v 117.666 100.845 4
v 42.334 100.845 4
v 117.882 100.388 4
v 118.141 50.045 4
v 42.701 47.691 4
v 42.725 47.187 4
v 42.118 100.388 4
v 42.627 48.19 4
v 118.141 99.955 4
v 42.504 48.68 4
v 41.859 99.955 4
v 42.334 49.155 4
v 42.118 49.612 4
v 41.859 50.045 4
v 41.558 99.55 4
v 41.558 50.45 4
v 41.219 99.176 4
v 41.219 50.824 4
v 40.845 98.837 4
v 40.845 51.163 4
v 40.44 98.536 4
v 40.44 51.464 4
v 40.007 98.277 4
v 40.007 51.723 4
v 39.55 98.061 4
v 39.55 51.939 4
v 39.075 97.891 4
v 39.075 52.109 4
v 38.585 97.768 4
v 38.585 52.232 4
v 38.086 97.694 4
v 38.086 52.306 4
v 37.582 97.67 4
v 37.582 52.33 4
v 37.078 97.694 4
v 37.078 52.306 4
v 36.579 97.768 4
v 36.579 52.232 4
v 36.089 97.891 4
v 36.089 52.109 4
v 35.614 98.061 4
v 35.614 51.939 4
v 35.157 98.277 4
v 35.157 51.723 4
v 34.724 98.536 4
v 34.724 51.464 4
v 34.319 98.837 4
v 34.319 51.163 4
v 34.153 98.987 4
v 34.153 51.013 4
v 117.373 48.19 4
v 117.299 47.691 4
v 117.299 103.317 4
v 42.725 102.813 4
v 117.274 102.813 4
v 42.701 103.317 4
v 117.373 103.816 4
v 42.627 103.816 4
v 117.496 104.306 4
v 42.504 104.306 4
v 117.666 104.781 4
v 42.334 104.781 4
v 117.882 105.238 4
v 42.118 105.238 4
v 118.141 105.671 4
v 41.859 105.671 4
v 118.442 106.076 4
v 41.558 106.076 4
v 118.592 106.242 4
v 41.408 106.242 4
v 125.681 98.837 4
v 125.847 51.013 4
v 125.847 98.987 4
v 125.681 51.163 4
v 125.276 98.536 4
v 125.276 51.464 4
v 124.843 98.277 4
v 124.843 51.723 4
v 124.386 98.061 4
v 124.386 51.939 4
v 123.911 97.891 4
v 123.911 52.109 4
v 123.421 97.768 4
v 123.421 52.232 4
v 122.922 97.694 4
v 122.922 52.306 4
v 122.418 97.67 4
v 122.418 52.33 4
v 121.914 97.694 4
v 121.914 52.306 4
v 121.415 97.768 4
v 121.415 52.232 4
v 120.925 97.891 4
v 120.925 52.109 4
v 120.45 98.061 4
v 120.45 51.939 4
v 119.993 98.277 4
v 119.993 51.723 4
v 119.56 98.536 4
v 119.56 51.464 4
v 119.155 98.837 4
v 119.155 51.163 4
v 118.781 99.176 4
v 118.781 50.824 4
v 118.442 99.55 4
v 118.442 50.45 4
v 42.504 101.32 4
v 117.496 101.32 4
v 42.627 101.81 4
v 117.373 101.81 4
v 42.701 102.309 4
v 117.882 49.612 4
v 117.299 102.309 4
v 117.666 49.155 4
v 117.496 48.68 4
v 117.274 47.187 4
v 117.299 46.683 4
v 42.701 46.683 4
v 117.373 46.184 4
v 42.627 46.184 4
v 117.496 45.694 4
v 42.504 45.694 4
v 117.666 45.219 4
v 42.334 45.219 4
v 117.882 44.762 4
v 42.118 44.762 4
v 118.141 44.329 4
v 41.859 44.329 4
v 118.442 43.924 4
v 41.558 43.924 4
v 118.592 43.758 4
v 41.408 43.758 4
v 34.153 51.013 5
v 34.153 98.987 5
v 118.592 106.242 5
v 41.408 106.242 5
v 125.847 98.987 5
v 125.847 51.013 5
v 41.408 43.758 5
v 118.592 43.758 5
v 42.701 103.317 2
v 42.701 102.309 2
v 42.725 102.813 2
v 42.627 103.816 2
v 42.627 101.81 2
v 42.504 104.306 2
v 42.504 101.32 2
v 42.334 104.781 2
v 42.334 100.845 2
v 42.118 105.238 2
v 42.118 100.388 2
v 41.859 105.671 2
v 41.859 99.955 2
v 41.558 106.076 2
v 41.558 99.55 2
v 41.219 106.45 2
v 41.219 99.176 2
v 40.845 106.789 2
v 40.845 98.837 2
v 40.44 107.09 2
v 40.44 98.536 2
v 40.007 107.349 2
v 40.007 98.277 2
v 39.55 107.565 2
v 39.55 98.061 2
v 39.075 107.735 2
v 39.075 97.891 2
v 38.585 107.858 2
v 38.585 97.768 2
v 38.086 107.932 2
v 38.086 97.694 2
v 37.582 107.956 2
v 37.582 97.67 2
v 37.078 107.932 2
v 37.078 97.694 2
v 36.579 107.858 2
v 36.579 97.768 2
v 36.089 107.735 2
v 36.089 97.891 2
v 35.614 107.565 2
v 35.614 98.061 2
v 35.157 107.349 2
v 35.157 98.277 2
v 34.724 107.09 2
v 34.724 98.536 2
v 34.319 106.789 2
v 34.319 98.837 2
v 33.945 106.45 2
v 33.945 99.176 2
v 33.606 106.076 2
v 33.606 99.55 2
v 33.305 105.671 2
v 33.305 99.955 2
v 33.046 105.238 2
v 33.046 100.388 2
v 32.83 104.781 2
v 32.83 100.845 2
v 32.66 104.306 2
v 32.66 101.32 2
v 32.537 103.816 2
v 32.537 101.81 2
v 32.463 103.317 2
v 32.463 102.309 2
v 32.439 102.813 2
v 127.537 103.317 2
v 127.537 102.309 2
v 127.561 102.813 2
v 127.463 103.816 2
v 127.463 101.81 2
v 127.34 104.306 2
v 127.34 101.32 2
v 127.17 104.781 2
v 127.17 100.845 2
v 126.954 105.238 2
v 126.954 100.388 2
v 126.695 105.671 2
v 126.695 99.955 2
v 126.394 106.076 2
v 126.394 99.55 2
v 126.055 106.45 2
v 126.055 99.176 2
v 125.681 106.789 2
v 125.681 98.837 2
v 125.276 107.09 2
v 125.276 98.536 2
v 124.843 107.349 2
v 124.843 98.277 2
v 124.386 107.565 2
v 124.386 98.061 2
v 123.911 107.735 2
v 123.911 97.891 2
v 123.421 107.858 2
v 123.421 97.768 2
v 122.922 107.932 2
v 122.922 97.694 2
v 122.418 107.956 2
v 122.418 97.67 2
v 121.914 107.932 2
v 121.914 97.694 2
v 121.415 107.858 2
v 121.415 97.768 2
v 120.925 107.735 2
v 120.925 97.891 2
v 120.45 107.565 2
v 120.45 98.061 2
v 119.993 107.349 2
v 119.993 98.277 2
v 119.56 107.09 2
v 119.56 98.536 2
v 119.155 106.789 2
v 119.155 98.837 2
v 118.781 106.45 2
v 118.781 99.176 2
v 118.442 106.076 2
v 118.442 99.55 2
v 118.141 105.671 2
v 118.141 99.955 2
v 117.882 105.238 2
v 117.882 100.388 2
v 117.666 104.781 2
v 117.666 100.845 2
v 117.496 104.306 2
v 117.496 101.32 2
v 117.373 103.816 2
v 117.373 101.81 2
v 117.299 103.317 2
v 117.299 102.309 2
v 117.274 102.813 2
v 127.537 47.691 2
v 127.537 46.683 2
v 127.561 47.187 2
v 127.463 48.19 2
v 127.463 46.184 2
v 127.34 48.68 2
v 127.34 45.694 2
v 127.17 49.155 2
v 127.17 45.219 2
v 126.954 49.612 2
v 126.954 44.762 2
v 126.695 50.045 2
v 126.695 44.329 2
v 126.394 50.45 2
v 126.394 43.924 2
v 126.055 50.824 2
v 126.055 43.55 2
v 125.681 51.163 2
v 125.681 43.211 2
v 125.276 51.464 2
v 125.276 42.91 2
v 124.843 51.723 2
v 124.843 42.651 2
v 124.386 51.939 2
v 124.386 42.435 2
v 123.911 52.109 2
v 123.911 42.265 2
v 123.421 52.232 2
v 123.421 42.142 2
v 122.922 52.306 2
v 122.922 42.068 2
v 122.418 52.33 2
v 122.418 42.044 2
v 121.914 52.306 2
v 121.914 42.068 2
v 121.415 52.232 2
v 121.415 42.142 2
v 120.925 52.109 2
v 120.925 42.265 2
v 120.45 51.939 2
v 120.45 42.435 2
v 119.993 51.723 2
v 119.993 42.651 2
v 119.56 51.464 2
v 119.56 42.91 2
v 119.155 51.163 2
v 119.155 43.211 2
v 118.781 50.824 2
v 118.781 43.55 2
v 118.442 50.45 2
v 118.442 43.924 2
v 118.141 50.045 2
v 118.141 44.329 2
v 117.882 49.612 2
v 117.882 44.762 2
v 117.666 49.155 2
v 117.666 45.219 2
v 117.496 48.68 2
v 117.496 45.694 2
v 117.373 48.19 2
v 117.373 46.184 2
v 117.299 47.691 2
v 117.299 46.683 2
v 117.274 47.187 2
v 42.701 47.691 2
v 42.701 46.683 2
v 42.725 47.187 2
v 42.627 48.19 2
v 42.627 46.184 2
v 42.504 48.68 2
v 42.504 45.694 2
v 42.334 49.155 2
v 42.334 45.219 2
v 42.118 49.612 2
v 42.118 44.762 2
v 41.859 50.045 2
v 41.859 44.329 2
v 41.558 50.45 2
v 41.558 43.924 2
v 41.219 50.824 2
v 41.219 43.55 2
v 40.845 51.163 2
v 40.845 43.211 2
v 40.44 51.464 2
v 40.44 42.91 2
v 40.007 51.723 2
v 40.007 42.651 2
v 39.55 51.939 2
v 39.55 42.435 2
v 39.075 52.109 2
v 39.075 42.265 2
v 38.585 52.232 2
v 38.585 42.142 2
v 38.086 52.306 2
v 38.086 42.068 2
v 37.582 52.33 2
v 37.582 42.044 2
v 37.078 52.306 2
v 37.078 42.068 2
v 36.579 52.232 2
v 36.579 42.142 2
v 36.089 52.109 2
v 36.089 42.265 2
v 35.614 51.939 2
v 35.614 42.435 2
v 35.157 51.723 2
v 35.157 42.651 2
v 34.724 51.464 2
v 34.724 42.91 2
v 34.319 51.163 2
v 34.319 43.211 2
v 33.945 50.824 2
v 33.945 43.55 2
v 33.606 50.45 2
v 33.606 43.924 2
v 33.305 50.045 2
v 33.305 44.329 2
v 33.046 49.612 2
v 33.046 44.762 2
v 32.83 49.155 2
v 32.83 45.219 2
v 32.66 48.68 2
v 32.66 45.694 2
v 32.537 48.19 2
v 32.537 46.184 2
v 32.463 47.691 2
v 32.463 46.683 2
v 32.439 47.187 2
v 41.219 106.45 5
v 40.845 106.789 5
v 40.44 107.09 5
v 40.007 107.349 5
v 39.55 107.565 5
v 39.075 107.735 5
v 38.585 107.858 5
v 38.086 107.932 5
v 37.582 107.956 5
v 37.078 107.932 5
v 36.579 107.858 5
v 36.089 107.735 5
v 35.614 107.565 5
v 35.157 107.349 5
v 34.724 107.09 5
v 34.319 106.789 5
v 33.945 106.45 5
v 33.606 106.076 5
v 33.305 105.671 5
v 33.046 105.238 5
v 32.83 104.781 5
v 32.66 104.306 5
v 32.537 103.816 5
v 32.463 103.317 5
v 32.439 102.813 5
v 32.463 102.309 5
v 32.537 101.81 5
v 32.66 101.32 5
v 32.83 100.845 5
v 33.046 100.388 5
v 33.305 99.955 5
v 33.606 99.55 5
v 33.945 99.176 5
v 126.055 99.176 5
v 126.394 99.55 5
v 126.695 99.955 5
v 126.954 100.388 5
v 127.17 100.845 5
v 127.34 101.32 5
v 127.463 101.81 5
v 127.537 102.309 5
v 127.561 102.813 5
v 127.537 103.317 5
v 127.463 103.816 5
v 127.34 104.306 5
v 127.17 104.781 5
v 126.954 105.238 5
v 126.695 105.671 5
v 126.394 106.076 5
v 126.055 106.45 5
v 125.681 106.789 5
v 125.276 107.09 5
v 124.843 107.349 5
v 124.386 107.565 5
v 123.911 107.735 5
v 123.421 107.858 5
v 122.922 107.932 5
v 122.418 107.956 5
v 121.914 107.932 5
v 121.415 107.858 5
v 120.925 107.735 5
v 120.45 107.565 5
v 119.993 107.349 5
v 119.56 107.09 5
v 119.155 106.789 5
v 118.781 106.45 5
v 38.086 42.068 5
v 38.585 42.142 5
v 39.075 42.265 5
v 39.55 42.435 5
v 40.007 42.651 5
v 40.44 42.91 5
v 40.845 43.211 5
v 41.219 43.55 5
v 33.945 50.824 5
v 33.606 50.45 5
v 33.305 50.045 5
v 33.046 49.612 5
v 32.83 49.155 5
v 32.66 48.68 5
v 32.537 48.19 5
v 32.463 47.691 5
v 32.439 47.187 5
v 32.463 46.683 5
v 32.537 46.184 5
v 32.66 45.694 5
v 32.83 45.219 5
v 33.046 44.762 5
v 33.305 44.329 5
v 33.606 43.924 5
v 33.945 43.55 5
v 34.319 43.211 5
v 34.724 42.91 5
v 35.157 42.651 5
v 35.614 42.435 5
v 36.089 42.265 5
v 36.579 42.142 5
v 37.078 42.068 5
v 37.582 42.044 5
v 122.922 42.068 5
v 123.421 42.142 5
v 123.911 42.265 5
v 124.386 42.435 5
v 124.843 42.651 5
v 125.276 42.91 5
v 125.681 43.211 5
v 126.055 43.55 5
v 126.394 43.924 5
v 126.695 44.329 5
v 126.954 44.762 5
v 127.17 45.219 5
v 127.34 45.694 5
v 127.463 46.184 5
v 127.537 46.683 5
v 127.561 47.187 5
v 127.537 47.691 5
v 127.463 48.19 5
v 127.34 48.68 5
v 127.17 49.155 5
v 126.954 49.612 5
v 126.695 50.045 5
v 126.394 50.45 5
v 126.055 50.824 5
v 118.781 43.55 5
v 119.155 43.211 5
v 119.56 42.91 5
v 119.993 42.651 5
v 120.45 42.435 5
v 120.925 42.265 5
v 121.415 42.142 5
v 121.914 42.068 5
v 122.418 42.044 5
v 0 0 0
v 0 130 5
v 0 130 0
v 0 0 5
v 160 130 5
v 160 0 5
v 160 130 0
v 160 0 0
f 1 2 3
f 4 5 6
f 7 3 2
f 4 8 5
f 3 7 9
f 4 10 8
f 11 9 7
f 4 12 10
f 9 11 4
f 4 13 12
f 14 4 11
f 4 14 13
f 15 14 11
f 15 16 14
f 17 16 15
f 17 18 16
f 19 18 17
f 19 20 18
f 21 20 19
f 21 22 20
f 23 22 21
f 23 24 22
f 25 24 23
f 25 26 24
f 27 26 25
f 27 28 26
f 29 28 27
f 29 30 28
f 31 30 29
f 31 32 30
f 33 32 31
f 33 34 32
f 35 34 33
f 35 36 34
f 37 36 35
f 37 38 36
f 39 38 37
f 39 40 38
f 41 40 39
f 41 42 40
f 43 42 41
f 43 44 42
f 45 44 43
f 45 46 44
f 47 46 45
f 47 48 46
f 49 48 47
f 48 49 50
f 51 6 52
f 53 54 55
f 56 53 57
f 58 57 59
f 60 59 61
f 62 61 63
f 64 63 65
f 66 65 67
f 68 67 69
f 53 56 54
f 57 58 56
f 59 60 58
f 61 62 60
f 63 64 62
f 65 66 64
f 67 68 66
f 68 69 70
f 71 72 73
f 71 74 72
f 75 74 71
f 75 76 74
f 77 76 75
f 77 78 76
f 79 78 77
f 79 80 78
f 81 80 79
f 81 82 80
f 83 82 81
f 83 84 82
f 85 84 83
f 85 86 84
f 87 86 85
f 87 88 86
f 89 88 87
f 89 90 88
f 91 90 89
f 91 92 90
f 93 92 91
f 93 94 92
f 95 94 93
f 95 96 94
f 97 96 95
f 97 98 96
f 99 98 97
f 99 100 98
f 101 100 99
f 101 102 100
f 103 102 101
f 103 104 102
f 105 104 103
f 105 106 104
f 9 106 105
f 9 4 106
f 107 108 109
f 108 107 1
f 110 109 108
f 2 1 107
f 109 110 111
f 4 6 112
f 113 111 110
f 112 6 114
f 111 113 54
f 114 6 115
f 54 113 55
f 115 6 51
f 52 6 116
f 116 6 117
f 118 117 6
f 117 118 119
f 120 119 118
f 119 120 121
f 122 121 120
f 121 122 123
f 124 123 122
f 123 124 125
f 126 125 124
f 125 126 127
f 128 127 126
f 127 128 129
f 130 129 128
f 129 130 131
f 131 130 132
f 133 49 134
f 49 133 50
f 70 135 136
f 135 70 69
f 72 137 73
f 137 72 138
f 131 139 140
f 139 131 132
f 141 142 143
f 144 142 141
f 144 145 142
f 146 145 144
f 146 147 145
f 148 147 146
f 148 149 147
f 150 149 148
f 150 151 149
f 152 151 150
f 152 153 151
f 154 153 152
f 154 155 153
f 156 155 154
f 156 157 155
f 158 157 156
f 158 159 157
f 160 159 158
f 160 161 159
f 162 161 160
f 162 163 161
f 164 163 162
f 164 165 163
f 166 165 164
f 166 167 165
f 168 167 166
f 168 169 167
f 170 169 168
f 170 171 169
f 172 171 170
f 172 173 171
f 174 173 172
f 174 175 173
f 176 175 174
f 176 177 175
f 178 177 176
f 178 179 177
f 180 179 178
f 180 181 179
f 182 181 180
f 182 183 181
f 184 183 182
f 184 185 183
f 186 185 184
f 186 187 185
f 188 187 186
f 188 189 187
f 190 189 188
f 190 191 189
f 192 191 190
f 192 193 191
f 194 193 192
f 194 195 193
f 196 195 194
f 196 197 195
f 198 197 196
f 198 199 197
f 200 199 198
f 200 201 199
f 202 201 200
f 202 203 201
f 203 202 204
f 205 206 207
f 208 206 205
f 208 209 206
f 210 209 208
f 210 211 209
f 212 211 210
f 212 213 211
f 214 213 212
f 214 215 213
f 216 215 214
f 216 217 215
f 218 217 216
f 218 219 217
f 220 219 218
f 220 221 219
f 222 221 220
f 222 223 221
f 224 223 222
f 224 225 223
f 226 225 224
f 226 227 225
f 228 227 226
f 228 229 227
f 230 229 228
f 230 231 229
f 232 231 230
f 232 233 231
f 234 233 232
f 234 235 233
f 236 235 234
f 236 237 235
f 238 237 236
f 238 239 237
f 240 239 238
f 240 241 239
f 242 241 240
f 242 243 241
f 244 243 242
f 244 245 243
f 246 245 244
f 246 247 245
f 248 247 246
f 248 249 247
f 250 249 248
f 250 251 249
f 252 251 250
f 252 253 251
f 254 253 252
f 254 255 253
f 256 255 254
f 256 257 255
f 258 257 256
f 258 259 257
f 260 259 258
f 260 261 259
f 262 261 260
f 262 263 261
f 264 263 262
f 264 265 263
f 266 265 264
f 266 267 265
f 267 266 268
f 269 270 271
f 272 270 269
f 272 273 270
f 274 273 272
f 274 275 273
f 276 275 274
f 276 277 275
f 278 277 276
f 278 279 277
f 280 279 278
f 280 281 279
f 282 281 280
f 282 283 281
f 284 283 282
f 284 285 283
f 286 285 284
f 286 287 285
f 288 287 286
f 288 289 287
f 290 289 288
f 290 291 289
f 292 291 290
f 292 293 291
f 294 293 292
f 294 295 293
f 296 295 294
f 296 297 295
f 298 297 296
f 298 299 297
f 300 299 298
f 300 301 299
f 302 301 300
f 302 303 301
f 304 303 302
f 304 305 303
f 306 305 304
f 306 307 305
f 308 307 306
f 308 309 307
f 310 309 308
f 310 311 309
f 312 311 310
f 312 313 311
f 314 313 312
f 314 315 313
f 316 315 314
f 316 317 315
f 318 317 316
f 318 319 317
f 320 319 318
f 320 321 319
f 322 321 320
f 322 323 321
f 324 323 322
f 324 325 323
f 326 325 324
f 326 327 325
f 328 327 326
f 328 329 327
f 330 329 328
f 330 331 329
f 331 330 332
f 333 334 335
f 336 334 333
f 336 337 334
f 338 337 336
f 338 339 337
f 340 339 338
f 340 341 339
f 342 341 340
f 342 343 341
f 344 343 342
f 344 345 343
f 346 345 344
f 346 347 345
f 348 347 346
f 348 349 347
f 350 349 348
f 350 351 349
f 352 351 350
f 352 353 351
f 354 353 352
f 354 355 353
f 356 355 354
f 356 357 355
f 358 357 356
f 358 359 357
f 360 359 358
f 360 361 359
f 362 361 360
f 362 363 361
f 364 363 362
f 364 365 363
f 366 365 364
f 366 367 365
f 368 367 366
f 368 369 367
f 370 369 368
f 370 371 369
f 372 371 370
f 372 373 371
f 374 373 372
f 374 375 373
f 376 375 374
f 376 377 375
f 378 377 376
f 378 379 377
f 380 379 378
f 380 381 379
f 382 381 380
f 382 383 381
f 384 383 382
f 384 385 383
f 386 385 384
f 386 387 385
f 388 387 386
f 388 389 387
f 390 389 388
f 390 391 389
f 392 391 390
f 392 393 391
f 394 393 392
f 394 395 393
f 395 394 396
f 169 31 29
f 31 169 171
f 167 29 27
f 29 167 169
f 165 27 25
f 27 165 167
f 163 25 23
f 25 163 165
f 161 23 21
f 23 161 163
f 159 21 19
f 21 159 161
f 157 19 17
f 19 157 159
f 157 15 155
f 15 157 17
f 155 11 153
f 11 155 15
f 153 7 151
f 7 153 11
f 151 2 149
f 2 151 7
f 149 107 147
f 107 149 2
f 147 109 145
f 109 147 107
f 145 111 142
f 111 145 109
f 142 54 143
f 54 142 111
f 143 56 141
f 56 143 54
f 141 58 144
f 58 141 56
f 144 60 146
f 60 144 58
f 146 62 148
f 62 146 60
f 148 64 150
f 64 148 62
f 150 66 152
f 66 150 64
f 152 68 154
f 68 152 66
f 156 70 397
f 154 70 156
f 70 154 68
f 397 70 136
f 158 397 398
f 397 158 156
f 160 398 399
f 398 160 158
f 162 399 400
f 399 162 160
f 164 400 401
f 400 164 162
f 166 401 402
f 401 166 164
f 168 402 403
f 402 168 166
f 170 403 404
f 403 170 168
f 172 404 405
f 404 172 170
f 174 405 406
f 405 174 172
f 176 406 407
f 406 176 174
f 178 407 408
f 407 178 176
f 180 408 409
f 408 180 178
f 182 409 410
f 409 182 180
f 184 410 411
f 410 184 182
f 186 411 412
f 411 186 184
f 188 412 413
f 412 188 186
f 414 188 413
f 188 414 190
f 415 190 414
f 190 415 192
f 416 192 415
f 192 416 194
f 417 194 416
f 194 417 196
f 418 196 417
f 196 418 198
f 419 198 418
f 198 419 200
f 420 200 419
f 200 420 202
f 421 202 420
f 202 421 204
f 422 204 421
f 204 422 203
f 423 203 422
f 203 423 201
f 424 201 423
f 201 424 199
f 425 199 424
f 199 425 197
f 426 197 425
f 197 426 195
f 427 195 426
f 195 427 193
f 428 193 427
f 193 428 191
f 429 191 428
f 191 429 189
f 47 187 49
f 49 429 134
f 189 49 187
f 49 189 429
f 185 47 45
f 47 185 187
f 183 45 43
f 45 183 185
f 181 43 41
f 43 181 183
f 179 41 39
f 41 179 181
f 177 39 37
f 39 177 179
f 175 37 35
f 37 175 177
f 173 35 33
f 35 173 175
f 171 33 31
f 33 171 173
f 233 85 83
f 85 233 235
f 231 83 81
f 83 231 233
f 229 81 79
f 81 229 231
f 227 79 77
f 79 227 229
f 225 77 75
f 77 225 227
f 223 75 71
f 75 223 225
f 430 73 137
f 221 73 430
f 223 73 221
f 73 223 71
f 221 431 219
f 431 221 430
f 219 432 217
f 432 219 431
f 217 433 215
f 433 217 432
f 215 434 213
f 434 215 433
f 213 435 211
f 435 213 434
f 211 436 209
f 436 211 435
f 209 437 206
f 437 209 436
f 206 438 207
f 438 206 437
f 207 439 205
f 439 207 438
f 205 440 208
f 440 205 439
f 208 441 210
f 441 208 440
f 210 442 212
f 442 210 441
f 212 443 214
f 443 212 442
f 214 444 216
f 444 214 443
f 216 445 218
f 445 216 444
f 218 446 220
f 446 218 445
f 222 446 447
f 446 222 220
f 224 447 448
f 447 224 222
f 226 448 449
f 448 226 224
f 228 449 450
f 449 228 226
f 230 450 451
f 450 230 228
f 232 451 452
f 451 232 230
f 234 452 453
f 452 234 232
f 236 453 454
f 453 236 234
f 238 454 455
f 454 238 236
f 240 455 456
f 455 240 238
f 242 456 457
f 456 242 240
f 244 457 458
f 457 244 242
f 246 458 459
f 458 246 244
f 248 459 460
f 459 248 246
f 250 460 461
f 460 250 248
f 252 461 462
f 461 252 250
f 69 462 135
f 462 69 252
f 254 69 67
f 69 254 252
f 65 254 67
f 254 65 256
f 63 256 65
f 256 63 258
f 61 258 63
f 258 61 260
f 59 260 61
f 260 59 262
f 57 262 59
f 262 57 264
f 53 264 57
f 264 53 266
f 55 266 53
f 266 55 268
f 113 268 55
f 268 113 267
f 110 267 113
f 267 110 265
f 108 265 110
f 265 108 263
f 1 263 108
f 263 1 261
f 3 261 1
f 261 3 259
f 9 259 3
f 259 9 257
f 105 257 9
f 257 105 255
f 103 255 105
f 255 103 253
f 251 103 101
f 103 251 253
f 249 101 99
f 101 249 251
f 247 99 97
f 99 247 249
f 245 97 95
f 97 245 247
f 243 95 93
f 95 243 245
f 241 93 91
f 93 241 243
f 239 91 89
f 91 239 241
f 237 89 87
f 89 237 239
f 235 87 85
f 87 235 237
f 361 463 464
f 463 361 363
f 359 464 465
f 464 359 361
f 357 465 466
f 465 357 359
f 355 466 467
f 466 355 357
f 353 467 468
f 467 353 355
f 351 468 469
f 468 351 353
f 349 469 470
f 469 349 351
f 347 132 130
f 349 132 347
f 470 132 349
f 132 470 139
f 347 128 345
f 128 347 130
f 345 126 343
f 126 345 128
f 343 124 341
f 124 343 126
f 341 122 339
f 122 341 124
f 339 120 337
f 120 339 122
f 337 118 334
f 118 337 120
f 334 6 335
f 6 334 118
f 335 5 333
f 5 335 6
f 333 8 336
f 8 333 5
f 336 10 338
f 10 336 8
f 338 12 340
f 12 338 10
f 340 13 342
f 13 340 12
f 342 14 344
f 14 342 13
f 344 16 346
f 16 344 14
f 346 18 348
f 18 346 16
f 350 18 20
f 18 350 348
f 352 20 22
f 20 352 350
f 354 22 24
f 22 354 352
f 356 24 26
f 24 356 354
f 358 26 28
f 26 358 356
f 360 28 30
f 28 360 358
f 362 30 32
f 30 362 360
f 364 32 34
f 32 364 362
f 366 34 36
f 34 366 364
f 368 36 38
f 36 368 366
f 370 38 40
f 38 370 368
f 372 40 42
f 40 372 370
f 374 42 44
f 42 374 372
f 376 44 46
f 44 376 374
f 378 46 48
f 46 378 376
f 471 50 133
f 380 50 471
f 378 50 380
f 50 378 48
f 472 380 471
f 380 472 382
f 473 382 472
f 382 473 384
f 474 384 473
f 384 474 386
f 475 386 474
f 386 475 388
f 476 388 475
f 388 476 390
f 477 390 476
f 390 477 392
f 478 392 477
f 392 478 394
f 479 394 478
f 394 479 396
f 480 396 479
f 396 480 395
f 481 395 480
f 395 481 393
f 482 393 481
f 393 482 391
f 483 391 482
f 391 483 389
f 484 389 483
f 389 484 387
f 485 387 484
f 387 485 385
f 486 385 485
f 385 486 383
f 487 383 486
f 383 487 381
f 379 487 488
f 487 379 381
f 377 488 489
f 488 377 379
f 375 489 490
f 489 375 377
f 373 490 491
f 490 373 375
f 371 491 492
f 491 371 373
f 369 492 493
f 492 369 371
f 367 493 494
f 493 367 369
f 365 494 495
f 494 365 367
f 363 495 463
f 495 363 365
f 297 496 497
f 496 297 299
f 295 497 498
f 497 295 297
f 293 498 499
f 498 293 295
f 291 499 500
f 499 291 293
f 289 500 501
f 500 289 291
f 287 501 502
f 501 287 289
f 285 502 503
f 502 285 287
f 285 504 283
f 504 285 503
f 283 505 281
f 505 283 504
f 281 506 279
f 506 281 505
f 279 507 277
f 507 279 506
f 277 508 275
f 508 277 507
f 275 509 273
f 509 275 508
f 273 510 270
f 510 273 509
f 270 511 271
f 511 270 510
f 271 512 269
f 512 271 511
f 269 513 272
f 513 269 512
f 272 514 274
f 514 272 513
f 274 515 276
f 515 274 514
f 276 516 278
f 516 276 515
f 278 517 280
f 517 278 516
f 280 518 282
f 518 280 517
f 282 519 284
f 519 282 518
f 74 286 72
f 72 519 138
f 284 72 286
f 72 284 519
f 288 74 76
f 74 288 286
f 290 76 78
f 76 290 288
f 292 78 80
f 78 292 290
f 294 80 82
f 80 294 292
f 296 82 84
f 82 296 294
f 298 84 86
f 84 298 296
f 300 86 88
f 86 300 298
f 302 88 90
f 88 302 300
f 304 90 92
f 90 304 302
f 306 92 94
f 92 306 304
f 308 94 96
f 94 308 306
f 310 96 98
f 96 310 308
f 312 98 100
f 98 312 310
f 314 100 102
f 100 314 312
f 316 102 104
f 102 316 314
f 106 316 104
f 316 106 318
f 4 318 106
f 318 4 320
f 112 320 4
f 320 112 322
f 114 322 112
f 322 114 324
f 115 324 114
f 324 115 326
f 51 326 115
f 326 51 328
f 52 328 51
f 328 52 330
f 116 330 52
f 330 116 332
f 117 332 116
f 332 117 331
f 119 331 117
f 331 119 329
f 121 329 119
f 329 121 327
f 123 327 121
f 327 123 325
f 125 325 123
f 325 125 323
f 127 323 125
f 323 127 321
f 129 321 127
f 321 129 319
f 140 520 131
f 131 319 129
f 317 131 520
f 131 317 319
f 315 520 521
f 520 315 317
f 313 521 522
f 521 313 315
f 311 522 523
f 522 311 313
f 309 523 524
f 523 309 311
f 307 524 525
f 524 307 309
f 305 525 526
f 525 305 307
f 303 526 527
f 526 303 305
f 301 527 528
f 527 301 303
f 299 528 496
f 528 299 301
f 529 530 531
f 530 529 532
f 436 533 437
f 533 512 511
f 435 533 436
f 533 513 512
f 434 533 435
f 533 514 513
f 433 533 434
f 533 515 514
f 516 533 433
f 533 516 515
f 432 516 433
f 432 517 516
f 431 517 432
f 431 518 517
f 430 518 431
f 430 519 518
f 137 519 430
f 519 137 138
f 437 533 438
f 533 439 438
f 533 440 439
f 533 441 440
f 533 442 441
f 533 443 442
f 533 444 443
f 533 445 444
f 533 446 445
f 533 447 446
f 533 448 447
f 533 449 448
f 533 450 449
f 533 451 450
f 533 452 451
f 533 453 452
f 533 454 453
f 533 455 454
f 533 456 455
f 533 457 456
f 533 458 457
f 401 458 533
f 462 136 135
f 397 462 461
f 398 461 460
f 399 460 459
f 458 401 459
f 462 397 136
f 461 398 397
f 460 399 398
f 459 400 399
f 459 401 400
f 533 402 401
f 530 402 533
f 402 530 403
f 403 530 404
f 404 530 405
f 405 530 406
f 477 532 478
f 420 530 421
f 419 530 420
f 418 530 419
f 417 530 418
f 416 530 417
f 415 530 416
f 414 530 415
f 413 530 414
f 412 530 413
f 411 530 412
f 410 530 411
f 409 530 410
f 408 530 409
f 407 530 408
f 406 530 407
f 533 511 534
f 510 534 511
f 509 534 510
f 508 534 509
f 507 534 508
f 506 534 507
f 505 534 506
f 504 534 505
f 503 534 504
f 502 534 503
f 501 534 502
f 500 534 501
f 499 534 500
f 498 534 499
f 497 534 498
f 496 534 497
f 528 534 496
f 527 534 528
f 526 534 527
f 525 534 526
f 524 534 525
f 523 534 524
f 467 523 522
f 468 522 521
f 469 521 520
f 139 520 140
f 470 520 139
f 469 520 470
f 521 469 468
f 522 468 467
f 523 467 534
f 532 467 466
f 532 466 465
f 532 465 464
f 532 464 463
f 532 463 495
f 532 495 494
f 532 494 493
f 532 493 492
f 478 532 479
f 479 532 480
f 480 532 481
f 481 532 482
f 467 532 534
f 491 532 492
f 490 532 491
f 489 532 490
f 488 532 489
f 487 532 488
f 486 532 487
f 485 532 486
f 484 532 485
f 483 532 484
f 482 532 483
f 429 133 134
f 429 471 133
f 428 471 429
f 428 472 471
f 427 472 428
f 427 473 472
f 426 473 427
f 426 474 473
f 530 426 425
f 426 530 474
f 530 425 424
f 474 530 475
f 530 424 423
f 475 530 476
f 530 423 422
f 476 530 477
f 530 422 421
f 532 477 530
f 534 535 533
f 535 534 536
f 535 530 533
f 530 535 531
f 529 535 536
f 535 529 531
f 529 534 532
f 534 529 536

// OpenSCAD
// gbg-pcbs can be set into the cutout of this panel to hold them still while applying solder paste.
// Dimensions
in2mm=25.4;
block_width = 160;
block_height = 130;
block_thickness = 5;

// Cutout dimensions
cutout_thickness=1.0;

cutout_width = in2mm*(3.6+.01);
cutout_height = in2mm*(2.45+.01);
corner_radius = in2mm*(0.125+.01);

// Smoothness of rounded corners
$fn = 64;

difference() {
    // Main rectangle block
    cube([block_width, block_height, block_thickness]);

    // Rounded rectangle cutout
    translate([
        (block_width - cutout_width) / 2,
        (block_height - cutout_height) / 2 + 10,
        block_thickness-cutout_thickness
    ]){
        linear_extrude(height = block_thickness){
            rounded_rectangle(cutout_width, cutout_height, corner_radius);
        }
        translate([0,0,-2])
        linear_extrude(height = 2*2){
            corner_circles(cutout_width, cutout_height, corner_radius,1.5);
        }
    }
}

// 2D rounded rectangle module
module rounded_rectangle(w, h, r) {
    hull() {
        translate([r, r]) circle(r);
        translate([w - r, r]) circle(r);
        translate([r, h - r]) circle(r);
        translate([w - r, h - r]) circle(r);
    }
}
module corner_circles(w,h,r,m){
    translate([r, r]) circle(r*m);
    translate([w - r, r]) circle(r*m);
    translate([r, h - r]) circle(r*m);
    translate([w - r, h - r]) circle(r*m);
}
